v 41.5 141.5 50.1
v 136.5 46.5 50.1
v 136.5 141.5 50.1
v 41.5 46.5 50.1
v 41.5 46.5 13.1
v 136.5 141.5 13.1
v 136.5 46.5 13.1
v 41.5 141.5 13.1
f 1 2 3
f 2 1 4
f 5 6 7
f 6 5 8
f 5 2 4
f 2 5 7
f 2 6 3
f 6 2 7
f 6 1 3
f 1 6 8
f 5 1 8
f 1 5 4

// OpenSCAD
// The low-profile cooler envelope from the Mini-ITX case example, as the eval's reference.
// Render: openscad -o model.stl model.scad
include <../../../../../examples/mini-itx-case/case.scad>
part = "cooler";
